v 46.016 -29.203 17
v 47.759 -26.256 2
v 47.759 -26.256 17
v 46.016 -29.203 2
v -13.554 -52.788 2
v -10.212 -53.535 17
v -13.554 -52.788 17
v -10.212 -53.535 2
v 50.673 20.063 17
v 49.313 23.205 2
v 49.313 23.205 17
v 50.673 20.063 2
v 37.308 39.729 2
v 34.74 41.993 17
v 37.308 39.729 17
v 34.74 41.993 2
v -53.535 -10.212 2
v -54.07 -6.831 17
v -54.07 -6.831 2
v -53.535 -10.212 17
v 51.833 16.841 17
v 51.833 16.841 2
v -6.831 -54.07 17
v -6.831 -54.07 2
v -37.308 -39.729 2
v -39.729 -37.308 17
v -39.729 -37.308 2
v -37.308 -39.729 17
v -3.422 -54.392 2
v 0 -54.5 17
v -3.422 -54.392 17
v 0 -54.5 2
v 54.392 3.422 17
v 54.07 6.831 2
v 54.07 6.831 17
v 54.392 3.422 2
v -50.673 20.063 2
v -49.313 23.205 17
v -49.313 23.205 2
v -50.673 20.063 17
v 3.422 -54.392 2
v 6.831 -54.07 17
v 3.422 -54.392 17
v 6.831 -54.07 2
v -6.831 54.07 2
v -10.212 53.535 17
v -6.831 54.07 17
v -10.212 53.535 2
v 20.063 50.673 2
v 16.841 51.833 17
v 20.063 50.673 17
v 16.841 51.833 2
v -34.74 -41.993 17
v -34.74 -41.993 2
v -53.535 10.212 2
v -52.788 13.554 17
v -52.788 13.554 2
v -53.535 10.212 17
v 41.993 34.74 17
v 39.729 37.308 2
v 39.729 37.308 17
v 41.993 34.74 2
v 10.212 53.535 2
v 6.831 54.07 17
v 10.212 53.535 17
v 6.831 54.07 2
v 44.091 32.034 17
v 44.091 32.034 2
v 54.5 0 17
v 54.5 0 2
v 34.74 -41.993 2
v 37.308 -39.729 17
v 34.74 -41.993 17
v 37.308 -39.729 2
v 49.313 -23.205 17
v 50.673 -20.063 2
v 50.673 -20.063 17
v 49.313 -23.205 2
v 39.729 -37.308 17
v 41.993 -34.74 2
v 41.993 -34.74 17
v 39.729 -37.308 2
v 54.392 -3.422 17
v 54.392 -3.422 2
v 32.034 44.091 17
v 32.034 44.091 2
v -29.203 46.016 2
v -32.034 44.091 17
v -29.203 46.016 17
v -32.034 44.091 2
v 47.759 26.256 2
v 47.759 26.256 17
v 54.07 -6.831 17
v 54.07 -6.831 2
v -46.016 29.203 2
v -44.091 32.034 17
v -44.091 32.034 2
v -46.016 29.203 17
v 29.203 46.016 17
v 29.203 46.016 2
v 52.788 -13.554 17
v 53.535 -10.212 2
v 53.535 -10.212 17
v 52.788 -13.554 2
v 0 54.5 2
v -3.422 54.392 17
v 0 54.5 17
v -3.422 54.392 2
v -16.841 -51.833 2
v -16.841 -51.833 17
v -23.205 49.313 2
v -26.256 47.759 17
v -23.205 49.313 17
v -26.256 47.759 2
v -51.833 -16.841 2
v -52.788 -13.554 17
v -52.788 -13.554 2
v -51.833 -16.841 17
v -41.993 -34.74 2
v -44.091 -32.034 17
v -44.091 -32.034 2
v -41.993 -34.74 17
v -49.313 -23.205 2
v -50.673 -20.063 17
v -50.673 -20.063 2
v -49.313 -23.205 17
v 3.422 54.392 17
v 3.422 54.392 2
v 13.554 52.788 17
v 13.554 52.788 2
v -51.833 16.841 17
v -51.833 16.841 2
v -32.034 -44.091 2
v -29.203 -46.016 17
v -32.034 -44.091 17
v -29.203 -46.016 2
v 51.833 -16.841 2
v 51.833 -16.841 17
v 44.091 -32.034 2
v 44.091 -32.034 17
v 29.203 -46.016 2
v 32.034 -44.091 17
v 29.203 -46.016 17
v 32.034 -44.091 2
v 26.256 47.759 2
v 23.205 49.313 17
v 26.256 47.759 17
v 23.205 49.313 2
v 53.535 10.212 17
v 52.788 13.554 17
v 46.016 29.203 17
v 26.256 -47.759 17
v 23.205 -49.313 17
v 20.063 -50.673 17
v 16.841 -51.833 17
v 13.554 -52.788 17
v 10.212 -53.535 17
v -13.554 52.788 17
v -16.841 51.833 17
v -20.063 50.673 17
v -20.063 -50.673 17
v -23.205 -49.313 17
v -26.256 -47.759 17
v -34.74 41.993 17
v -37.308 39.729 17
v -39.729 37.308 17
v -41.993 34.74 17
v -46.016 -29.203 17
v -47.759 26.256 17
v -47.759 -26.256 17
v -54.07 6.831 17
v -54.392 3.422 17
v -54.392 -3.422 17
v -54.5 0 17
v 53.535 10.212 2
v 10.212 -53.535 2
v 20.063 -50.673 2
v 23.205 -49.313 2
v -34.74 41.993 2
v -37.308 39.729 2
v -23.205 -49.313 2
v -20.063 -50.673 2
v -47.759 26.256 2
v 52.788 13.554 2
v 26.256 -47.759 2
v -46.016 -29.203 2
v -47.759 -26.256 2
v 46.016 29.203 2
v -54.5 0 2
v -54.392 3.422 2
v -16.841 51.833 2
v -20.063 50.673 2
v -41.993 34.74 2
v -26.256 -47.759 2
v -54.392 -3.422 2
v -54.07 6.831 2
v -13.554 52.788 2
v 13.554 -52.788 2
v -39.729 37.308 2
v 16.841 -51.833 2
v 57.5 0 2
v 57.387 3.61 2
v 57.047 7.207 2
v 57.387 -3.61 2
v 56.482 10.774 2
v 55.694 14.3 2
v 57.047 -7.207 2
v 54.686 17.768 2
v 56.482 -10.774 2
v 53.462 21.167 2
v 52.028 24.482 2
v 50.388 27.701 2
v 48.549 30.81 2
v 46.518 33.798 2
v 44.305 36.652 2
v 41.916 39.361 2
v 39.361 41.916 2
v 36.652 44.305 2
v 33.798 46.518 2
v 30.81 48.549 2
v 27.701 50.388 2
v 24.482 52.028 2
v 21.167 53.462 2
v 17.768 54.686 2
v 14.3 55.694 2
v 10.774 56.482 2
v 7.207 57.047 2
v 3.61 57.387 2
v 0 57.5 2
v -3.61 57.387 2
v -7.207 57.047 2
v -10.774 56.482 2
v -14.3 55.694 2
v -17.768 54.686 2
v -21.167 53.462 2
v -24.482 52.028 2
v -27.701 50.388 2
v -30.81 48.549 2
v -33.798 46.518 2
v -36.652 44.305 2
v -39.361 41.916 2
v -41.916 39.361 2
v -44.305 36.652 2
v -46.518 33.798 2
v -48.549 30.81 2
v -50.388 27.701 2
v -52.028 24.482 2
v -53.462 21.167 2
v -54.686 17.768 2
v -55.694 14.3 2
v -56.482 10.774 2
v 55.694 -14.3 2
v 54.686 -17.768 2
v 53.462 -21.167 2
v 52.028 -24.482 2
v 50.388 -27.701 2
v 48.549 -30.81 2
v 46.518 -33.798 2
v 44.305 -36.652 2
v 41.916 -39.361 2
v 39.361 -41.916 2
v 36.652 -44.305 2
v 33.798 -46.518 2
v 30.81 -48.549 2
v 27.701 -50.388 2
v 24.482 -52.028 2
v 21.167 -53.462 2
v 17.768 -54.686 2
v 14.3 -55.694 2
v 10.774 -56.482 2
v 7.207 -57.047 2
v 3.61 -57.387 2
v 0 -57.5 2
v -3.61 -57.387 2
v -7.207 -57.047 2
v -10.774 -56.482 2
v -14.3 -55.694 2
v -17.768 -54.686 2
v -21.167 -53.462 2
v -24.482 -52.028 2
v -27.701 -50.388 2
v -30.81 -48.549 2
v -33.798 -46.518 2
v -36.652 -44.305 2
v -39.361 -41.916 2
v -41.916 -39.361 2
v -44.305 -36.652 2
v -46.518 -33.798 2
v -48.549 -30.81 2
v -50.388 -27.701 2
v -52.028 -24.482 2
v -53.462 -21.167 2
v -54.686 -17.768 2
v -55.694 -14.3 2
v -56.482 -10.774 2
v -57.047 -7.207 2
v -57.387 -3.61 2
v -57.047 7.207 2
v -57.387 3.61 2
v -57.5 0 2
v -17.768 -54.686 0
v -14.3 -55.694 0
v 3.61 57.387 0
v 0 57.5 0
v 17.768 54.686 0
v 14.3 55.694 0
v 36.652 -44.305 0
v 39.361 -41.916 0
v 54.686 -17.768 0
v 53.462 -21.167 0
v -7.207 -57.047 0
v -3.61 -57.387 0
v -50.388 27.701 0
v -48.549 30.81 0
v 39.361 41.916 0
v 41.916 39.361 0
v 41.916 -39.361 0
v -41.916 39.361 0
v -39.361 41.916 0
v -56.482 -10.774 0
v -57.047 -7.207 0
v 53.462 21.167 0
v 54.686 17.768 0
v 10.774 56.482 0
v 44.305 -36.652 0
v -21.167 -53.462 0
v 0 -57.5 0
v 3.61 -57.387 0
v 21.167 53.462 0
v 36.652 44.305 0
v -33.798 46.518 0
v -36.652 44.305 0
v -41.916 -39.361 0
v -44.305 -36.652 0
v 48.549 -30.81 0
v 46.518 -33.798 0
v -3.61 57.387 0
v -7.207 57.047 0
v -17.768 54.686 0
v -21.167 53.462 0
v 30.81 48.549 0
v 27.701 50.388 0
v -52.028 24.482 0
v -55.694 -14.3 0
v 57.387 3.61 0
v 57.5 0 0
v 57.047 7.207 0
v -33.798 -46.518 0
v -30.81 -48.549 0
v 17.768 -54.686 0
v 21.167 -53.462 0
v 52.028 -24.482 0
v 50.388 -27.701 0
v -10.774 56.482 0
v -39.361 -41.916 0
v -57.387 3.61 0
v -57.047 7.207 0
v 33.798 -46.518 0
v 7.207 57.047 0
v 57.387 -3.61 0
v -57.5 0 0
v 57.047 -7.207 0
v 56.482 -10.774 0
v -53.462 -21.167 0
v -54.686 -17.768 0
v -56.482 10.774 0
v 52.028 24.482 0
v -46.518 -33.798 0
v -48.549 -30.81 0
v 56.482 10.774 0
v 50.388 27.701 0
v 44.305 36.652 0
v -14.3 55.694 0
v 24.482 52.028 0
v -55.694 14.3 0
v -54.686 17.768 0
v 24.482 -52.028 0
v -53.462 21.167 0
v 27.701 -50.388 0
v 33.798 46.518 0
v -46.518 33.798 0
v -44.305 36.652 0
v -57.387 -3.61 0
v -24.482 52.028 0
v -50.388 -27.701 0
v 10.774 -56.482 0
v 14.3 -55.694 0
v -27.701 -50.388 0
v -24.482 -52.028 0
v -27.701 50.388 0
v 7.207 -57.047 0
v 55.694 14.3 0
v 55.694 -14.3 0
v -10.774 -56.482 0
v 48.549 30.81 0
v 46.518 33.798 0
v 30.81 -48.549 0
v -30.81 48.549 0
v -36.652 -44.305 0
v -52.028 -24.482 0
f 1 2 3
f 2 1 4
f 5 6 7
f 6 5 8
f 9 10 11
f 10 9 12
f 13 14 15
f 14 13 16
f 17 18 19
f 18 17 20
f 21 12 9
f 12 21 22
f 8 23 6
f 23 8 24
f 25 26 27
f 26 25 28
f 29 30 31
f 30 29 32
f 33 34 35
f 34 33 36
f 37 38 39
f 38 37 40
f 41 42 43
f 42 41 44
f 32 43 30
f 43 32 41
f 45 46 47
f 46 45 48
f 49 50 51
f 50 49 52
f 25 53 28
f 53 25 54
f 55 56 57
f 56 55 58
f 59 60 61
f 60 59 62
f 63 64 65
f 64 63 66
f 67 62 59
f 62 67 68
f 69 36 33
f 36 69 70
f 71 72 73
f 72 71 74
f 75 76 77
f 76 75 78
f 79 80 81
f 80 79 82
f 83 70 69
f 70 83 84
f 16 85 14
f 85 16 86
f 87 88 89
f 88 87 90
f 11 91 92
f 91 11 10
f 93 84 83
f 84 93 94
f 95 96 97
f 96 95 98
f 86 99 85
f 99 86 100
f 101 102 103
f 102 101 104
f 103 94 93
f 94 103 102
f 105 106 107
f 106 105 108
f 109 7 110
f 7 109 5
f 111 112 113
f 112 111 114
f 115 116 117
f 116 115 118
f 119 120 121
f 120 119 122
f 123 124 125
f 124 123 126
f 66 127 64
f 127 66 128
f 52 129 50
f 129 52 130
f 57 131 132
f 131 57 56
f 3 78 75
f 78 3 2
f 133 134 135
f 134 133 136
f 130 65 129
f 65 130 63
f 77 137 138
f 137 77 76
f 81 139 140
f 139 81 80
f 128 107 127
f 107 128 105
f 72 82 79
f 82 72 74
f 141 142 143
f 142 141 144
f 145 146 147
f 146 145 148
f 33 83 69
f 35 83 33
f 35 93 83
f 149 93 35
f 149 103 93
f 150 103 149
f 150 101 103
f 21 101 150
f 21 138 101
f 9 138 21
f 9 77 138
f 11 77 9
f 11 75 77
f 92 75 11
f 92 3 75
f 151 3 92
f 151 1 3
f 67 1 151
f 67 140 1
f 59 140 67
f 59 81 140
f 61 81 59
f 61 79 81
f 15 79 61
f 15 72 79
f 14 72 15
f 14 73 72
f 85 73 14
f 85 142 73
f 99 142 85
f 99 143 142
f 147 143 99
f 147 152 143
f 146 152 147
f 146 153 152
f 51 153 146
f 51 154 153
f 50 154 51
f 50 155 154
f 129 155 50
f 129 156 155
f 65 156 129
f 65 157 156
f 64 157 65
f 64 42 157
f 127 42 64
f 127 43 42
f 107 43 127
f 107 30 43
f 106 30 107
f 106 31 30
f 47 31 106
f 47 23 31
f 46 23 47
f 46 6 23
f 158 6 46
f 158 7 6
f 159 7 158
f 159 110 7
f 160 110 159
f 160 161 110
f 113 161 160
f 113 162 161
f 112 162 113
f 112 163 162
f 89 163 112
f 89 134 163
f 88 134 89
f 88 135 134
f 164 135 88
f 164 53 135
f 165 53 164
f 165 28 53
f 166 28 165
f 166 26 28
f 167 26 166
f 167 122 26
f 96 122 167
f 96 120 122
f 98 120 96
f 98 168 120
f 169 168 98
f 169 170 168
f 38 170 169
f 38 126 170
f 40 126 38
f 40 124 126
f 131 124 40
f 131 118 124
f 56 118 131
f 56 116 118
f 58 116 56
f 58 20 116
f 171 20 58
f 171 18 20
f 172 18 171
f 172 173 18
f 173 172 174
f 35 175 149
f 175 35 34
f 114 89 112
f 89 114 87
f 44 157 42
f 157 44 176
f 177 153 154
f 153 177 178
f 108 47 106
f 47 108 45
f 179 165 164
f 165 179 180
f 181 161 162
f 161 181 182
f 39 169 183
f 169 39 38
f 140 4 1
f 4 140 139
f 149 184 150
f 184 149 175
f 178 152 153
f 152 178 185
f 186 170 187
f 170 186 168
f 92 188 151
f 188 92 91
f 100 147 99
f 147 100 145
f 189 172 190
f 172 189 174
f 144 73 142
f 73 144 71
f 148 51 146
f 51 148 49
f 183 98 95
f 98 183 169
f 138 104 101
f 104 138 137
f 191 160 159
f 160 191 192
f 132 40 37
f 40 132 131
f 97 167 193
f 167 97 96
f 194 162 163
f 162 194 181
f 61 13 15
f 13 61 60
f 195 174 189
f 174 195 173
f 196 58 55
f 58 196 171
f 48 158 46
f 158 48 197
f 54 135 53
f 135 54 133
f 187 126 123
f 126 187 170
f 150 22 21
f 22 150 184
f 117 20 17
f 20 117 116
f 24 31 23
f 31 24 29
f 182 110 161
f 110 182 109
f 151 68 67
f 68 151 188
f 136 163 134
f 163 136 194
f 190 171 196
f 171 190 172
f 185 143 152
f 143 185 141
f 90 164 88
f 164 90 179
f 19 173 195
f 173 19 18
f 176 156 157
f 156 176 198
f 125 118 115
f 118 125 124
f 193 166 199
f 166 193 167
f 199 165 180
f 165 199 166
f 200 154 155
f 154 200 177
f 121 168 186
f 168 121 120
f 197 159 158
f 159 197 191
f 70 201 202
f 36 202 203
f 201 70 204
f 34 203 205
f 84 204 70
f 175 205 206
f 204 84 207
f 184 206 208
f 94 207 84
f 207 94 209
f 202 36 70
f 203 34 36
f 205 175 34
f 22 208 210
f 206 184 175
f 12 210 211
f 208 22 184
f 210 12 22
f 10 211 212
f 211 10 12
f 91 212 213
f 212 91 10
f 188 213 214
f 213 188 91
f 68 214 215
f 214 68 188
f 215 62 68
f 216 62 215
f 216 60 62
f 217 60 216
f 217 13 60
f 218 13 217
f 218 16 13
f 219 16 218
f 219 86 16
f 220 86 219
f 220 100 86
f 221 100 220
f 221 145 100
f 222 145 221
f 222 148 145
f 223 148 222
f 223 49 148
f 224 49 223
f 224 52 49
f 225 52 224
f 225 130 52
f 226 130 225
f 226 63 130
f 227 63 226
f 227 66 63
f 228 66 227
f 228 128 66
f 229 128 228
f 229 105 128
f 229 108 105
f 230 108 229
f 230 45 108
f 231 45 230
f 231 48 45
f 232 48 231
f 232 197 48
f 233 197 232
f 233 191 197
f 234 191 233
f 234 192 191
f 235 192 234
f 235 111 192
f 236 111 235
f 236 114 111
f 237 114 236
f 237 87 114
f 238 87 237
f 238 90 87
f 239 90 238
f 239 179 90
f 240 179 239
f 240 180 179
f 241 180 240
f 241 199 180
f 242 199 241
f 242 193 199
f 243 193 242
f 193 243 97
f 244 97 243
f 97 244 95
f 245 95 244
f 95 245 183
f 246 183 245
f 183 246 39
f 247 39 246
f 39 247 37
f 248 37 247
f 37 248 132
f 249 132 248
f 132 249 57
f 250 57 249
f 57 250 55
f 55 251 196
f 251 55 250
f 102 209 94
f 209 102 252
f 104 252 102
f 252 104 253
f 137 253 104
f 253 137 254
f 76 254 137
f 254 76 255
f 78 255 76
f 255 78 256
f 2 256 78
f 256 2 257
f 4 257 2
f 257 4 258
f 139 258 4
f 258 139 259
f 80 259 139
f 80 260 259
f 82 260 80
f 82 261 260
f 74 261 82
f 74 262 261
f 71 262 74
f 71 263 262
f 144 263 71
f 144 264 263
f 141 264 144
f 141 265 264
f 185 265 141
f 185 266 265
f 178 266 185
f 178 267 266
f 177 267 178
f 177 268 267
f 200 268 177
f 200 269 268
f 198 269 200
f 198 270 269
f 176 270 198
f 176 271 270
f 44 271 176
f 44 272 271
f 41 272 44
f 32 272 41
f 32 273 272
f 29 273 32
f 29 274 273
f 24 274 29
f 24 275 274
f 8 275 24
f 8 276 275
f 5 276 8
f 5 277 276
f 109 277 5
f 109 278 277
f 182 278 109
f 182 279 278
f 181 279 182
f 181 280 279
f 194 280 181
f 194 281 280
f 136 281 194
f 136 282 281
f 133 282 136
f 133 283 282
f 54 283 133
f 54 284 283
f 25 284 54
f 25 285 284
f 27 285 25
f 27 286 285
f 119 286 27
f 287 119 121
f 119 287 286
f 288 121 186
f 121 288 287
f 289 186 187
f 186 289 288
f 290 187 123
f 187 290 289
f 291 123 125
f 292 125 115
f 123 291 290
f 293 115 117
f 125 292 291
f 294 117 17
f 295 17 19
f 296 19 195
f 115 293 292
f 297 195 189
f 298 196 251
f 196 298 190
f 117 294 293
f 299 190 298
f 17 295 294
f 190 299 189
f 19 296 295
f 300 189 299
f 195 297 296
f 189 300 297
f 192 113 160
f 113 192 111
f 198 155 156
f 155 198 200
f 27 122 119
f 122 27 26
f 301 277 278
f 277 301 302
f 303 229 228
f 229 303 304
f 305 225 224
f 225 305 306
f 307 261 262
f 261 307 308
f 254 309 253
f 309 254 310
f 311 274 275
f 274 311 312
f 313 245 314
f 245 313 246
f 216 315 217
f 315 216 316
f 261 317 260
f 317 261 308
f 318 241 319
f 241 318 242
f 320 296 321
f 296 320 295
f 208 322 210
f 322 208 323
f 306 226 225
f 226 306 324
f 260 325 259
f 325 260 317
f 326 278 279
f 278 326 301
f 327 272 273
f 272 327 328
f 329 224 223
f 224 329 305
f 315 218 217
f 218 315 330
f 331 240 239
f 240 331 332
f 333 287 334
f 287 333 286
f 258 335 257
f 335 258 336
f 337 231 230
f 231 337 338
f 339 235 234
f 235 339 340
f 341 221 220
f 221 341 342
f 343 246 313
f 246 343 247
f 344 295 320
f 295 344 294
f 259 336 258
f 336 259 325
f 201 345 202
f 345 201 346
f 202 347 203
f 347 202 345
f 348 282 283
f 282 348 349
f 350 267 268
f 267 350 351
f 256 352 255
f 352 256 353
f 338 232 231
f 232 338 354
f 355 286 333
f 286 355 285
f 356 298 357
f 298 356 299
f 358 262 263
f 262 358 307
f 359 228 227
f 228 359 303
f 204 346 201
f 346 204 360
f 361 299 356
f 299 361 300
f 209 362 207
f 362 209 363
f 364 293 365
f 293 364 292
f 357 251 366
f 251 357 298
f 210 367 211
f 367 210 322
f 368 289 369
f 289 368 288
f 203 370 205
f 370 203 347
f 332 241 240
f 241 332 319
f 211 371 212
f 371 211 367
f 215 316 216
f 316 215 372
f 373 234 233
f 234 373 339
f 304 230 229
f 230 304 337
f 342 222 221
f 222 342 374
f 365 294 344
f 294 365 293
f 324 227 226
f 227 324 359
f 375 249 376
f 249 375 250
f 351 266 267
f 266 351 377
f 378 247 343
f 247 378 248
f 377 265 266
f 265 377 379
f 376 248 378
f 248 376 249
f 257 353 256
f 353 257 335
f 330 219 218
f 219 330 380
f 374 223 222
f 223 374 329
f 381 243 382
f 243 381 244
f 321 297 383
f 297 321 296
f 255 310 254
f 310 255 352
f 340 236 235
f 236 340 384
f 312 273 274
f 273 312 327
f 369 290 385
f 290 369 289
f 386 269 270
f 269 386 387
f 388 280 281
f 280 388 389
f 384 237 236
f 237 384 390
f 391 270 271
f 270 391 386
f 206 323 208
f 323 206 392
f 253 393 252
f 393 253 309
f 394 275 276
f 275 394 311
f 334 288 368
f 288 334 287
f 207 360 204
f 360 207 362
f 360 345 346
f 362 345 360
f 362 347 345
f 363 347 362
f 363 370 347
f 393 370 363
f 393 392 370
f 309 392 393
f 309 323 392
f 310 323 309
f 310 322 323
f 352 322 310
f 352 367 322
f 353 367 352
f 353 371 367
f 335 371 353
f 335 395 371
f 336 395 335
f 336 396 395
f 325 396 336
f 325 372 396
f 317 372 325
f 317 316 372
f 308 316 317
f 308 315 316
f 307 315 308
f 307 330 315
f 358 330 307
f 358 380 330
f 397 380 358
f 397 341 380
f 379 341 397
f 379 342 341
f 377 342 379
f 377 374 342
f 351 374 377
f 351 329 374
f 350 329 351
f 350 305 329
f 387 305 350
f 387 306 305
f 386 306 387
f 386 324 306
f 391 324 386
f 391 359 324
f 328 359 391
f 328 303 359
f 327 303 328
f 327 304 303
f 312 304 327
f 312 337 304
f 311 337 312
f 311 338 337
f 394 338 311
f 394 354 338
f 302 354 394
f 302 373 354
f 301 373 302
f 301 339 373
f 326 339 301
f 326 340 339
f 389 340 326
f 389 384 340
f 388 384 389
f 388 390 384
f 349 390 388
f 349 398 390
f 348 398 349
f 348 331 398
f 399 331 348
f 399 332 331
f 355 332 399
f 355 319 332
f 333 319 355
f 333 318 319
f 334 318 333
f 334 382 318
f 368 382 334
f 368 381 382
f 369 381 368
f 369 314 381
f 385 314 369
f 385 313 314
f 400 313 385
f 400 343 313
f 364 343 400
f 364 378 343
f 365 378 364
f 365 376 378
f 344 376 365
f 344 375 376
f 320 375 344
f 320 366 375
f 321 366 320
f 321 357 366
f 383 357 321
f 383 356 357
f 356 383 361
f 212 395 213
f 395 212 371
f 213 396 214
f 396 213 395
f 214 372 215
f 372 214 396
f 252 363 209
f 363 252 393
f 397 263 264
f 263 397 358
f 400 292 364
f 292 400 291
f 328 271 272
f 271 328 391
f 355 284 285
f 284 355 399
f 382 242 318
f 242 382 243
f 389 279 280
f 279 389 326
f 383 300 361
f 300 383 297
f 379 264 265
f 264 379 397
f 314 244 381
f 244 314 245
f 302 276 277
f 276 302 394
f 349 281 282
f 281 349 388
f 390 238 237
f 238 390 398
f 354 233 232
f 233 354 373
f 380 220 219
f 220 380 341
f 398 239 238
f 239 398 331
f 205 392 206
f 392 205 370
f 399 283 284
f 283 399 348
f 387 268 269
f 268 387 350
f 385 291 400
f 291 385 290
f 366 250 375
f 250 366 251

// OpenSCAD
$fn = 100;

diameter_inside = 109;
height_inside = 15;
height_foot = 2;
diameter_foot = diameter_inside + 6;

translate([0, 0, height_foot])
cylinder(h = height_inside, d = diameter_inside);

cylinder(h = height_foot, d = diameter_foot);
